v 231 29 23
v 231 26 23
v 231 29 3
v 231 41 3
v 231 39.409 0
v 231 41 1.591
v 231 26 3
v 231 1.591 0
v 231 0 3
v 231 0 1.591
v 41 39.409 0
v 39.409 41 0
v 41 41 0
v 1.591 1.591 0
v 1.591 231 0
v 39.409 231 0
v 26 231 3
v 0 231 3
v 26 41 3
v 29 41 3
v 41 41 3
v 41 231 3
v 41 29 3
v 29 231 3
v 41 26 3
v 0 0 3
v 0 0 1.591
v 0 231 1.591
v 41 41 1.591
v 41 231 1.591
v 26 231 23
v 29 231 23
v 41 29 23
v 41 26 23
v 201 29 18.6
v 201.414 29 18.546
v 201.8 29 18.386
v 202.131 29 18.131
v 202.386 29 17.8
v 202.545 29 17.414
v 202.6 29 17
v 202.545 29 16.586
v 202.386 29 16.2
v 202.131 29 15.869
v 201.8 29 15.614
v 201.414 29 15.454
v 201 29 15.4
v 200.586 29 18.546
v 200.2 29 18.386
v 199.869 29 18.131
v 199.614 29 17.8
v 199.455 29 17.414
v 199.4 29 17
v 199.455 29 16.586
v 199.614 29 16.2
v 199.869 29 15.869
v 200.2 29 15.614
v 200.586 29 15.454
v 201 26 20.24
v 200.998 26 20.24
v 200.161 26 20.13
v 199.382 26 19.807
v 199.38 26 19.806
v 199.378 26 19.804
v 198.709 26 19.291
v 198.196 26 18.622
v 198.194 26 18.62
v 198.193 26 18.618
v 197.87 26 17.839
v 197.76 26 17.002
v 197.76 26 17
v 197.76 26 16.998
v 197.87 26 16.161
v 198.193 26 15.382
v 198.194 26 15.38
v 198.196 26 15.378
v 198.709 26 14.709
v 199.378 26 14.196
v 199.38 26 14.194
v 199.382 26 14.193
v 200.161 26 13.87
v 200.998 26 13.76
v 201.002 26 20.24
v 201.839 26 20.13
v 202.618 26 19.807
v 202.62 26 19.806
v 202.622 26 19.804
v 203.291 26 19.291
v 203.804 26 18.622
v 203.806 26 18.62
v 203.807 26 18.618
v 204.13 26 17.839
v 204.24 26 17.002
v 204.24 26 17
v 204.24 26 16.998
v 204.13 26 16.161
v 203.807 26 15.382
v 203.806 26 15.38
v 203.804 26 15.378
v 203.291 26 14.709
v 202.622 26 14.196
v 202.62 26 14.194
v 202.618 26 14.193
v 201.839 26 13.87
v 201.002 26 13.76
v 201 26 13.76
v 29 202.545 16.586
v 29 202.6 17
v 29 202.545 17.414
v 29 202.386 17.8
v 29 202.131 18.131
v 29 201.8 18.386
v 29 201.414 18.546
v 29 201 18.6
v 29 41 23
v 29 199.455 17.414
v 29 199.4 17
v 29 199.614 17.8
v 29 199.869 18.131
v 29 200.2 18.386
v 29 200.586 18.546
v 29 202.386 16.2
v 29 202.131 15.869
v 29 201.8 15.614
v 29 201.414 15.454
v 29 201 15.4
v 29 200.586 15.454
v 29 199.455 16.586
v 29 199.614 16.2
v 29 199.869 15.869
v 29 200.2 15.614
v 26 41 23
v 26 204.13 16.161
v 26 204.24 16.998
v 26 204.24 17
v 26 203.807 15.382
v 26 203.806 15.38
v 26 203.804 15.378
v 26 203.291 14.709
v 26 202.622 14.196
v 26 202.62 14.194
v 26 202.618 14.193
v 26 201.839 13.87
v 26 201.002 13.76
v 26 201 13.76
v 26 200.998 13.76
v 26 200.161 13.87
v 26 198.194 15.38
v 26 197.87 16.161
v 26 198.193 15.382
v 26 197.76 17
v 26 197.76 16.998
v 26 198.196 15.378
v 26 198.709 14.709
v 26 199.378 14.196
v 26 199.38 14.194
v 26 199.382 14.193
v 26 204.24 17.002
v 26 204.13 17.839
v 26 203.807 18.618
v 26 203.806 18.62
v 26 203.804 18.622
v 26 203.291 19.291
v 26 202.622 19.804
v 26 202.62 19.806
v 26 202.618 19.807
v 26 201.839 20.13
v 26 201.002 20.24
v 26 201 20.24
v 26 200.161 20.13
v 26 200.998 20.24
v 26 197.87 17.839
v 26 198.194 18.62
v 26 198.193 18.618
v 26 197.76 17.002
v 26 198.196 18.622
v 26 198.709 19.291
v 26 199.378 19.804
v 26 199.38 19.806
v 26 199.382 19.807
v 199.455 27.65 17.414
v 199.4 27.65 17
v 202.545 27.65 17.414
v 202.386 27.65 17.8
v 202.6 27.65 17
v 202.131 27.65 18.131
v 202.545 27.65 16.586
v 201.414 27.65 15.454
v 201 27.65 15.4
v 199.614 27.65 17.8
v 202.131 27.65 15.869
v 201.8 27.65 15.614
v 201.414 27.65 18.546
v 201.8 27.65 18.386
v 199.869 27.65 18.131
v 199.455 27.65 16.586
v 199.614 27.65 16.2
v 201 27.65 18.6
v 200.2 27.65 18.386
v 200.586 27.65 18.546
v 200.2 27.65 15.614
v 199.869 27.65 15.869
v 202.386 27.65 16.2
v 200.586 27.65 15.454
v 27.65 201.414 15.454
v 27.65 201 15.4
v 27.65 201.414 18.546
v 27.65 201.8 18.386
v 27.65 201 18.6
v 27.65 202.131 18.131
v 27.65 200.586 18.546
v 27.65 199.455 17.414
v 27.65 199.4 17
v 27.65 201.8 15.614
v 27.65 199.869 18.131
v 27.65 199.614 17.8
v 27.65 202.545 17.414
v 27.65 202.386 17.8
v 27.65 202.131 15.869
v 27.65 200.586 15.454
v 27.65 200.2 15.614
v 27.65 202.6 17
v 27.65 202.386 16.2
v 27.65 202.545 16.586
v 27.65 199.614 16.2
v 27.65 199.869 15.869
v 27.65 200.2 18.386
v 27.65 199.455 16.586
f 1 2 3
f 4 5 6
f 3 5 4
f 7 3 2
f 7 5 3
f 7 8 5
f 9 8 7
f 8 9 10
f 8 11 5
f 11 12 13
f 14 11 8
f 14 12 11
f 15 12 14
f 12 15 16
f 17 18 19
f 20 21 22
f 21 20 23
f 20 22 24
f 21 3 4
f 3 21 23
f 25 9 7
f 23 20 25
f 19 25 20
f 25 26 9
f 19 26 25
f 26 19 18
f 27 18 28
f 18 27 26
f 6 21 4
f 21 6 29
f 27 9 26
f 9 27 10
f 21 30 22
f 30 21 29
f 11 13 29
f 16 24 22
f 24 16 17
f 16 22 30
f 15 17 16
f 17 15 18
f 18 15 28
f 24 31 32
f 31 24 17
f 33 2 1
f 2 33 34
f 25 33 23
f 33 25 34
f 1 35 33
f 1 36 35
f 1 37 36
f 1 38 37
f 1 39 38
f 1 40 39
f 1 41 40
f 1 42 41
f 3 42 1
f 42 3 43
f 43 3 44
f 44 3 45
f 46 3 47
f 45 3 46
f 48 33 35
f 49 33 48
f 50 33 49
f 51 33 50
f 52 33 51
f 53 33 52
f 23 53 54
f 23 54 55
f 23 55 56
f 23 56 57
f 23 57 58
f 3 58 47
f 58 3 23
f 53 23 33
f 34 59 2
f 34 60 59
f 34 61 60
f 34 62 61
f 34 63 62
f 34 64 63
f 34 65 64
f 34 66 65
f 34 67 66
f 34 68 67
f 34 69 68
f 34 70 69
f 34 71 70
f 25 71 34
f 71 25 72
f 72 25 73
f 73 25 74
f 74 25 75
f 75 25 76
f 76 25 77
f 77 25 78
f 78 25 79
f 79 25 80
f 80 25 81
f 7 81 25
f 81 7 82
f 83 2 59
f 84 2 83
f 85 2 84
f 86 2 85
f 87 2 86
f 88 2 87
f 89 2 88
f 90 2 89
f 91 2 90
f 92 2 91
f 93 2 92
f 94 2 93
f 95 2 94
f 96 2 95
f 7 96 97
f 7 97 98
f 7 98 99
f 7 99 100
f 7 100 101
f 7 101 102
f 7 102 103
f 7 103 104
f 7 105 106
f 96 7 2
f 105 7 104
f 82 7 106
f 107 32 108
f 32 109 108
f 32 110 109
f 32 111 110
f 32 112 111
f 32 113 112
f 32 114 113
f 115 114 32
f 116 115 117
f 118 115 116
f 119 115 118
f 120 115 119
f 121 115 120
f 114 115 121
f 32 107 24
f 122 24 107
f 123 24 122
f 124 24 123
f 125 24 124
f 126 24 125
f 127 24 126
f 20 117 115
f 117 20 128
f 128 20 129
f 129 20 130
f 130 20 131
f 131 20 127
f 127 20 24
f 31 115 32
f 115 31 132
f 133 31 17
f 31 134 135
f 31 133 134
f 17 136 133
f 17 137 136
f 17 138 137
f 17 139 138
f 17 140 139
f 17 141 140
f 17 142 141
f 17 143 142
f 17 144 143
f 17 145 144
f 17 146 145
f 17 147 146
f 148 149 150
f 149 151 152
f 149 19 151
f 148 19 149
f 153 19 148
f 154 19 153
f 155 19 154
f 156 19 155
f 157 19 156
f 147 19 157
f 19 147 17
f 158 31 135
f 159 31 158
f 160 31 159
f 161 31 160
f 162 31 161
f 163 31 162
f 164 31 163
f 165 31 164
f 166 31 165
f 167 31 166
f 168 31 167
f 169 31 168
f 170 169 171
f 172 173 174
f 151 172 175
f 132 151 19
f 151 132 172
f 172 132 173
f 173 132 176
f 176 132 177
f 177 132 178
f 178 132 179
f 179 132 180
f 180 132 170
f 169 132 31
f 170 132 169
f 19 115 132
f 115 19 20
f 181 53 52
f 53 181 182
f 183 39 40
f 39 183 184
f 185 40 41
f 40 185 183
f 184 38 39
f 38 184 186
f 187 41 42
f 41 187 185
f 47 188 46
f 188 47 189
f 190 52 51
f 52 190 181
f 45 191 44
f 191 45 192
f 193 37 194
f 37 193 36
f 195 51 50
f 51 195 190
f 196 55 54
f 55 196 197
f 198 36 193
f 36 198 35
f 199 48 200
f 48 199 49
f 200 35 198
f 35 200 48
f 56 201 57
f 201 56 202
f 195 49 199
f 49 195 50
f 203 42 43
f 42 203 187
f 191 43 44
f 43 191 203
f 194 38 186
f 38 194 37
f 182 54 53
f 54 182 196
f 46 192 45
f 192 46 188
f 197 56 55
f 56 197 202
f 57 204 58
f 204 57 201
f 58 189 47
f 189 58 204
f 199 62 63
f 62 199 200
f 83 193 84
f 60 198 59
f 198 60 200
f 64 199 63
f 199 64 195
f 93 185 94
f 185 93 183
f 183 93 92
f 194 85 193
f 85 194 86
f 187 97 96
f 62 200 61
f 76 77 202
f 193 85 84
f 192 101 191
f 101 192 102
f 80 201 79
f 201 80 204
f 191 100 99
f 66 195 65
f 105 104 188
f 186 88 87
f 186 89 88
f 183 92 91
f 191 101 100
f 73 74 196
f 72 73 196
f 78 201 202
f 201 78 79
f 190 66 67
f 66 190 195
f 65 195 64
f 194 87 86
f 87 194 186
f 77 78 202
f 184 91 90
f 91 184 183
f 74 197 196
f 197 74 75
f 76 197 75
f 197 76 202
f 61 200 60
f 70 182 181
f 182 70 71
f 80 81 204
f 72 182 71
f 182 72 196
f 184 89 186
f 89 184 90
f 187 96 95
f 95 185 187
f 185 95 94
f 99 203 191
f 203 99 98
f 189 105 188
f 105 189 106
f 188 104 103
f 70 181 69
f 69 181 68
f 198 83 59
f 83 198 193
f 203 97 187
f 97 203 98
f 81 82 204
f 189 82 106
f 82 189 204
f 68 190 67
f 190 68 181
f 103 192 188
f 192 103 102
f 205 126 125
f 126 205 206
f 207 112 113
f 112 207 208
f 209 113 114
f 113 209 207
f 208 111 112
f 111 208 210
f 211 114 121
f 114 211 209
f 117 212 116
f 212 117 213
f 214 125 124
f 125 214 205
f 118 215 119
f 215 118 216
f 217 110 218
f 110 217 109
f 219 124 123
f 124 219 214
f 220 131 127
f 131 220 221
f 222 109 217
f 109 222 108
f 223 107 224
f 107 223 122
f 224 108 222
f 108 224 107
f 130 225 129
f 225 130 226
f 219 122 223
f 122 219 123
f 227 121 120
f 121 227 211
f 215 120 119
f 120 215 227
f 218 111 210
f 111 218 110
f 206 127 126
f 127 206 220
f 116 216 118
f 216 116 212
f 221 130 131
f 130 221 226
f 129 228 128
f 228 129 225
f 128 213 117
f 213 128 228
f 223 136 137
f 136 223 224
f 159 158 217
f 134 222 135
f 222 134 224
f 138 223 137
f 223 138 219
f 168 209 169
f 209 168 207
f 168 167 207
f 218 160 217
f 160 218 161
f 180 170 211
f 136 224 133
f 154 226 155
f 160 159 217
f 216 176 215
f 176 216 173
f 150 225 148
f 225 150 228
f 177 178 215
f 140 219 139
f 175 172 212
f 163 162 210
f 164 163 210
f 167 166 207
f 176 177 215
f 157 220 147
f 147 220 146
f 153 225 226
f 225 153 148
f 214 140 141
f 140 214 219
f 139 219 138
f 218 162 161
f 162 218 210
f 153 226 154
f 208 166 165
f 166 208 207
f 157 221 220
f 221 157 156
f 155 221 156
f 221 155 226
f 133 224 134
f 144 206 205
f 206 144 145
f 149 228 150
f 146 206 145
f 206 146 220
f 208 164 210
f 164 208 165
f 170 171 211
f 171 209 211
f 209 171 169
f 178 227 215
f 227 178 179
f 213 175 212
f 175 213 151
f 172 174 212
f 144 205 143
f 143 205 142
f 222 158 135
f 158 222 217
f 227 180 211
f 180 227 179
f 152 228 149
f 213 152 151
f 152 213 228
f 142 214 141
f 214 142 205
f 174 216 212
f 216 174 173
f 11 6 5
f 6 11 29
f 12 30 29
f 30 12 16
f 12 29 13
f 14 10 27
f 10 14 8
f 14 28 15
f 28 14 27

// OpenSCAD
// Wall-gap corner. One L-shaped piece for the back-left corner of top A, where the gap along
// the back wall meets the gap along the side wall. Same profile, lip, screws and gap rule as
// the strip. Each leg is 231 mm from the wall corner, so it ends 20.0 cm along each desk edge
// and the first strip butts against it there. One screw per leg.
// The file is in PRINT orientation: top face down, lips up, no supports.

leg = 231; gap = 29; ontop = 12; th = 3; lip = 20; lip_t = 3; chamf = 1.5; screw = 3.2; csk = 6.5; hole_z = -14;
w = gap + ontop;

module hole_y(x) { translate([x, gap - lip_t - 1, hole_z]) rotate([-90, 0, 0]) { cylinder(d = screw, h = lip_t + 2, $fn = 24); translate([0, 0, 1 - 0.01]) cylinder(d1 = csk, d2 = screw, h = (csk - screw) / 2 + 0.01, $fn = 24); } }
module hole_x(y) { translate([gap - lip_t - 1, y, hole_z]) rotate([0, 90, 0]) { cylinder(d = screw, h = lip_t + 2, $fn = 24); translate([0, 0, 1 - 0.01]) cylinder(d1 = csk, d2 = screw, h = (csk - screw) / 2 + 0.01, $fn = 24); } }
module corner() {   // use orientation
    difference() {
        union() {
            cube([leg, w, th]);                                                  // along the back wall (x), wall side at y = 0
            cube([w, leg, th]);                                                  // along the side wall (y), wall side at x = 0
            translate([w, gap - lip_t, -lip]) cube([leg - w, lip_t, lip]);      // lip along the back-wall leg, where the desk edge is
            translate([gap - lip_t, w, -lip]) cube([lip_t, leg - w, lip]);      // lip along the side-wall leg
        }
        // chamfers: the two exposed desk-side top edges, beyond the inner corner, and the two wall-side top edges
        translate([w + (leg - w) / 2 + 1, w, th]) rotate([45, 0, 0]) cube([leg - w + 2, chamf * 1.5, chamf * 1.5], center = true);
        translate([w, w + (leg - w) / 2 + 1, th]) rotate([0, 45, 0]) cube([chamf * 1.5, leg - w + 2, chamf * 1.5], center = true);
        translate([leg / 2, 0, th]) rotate([45, 0, 0]) cube([leg + 2, chamf * 1.5, chamf * 1.5], center = true);
        translate([0, leg / 2, th]) rotate([0, 45, 0]) cube([chamf * 1.5, leg + 2, chamf * 1.5], center = true);
        hole_y(leg - 30);
        hole_x(leg - 30);
    }
}
translate([0, 0, th]) mirror([0, 0, 1]) corner();   // flipped for printing
